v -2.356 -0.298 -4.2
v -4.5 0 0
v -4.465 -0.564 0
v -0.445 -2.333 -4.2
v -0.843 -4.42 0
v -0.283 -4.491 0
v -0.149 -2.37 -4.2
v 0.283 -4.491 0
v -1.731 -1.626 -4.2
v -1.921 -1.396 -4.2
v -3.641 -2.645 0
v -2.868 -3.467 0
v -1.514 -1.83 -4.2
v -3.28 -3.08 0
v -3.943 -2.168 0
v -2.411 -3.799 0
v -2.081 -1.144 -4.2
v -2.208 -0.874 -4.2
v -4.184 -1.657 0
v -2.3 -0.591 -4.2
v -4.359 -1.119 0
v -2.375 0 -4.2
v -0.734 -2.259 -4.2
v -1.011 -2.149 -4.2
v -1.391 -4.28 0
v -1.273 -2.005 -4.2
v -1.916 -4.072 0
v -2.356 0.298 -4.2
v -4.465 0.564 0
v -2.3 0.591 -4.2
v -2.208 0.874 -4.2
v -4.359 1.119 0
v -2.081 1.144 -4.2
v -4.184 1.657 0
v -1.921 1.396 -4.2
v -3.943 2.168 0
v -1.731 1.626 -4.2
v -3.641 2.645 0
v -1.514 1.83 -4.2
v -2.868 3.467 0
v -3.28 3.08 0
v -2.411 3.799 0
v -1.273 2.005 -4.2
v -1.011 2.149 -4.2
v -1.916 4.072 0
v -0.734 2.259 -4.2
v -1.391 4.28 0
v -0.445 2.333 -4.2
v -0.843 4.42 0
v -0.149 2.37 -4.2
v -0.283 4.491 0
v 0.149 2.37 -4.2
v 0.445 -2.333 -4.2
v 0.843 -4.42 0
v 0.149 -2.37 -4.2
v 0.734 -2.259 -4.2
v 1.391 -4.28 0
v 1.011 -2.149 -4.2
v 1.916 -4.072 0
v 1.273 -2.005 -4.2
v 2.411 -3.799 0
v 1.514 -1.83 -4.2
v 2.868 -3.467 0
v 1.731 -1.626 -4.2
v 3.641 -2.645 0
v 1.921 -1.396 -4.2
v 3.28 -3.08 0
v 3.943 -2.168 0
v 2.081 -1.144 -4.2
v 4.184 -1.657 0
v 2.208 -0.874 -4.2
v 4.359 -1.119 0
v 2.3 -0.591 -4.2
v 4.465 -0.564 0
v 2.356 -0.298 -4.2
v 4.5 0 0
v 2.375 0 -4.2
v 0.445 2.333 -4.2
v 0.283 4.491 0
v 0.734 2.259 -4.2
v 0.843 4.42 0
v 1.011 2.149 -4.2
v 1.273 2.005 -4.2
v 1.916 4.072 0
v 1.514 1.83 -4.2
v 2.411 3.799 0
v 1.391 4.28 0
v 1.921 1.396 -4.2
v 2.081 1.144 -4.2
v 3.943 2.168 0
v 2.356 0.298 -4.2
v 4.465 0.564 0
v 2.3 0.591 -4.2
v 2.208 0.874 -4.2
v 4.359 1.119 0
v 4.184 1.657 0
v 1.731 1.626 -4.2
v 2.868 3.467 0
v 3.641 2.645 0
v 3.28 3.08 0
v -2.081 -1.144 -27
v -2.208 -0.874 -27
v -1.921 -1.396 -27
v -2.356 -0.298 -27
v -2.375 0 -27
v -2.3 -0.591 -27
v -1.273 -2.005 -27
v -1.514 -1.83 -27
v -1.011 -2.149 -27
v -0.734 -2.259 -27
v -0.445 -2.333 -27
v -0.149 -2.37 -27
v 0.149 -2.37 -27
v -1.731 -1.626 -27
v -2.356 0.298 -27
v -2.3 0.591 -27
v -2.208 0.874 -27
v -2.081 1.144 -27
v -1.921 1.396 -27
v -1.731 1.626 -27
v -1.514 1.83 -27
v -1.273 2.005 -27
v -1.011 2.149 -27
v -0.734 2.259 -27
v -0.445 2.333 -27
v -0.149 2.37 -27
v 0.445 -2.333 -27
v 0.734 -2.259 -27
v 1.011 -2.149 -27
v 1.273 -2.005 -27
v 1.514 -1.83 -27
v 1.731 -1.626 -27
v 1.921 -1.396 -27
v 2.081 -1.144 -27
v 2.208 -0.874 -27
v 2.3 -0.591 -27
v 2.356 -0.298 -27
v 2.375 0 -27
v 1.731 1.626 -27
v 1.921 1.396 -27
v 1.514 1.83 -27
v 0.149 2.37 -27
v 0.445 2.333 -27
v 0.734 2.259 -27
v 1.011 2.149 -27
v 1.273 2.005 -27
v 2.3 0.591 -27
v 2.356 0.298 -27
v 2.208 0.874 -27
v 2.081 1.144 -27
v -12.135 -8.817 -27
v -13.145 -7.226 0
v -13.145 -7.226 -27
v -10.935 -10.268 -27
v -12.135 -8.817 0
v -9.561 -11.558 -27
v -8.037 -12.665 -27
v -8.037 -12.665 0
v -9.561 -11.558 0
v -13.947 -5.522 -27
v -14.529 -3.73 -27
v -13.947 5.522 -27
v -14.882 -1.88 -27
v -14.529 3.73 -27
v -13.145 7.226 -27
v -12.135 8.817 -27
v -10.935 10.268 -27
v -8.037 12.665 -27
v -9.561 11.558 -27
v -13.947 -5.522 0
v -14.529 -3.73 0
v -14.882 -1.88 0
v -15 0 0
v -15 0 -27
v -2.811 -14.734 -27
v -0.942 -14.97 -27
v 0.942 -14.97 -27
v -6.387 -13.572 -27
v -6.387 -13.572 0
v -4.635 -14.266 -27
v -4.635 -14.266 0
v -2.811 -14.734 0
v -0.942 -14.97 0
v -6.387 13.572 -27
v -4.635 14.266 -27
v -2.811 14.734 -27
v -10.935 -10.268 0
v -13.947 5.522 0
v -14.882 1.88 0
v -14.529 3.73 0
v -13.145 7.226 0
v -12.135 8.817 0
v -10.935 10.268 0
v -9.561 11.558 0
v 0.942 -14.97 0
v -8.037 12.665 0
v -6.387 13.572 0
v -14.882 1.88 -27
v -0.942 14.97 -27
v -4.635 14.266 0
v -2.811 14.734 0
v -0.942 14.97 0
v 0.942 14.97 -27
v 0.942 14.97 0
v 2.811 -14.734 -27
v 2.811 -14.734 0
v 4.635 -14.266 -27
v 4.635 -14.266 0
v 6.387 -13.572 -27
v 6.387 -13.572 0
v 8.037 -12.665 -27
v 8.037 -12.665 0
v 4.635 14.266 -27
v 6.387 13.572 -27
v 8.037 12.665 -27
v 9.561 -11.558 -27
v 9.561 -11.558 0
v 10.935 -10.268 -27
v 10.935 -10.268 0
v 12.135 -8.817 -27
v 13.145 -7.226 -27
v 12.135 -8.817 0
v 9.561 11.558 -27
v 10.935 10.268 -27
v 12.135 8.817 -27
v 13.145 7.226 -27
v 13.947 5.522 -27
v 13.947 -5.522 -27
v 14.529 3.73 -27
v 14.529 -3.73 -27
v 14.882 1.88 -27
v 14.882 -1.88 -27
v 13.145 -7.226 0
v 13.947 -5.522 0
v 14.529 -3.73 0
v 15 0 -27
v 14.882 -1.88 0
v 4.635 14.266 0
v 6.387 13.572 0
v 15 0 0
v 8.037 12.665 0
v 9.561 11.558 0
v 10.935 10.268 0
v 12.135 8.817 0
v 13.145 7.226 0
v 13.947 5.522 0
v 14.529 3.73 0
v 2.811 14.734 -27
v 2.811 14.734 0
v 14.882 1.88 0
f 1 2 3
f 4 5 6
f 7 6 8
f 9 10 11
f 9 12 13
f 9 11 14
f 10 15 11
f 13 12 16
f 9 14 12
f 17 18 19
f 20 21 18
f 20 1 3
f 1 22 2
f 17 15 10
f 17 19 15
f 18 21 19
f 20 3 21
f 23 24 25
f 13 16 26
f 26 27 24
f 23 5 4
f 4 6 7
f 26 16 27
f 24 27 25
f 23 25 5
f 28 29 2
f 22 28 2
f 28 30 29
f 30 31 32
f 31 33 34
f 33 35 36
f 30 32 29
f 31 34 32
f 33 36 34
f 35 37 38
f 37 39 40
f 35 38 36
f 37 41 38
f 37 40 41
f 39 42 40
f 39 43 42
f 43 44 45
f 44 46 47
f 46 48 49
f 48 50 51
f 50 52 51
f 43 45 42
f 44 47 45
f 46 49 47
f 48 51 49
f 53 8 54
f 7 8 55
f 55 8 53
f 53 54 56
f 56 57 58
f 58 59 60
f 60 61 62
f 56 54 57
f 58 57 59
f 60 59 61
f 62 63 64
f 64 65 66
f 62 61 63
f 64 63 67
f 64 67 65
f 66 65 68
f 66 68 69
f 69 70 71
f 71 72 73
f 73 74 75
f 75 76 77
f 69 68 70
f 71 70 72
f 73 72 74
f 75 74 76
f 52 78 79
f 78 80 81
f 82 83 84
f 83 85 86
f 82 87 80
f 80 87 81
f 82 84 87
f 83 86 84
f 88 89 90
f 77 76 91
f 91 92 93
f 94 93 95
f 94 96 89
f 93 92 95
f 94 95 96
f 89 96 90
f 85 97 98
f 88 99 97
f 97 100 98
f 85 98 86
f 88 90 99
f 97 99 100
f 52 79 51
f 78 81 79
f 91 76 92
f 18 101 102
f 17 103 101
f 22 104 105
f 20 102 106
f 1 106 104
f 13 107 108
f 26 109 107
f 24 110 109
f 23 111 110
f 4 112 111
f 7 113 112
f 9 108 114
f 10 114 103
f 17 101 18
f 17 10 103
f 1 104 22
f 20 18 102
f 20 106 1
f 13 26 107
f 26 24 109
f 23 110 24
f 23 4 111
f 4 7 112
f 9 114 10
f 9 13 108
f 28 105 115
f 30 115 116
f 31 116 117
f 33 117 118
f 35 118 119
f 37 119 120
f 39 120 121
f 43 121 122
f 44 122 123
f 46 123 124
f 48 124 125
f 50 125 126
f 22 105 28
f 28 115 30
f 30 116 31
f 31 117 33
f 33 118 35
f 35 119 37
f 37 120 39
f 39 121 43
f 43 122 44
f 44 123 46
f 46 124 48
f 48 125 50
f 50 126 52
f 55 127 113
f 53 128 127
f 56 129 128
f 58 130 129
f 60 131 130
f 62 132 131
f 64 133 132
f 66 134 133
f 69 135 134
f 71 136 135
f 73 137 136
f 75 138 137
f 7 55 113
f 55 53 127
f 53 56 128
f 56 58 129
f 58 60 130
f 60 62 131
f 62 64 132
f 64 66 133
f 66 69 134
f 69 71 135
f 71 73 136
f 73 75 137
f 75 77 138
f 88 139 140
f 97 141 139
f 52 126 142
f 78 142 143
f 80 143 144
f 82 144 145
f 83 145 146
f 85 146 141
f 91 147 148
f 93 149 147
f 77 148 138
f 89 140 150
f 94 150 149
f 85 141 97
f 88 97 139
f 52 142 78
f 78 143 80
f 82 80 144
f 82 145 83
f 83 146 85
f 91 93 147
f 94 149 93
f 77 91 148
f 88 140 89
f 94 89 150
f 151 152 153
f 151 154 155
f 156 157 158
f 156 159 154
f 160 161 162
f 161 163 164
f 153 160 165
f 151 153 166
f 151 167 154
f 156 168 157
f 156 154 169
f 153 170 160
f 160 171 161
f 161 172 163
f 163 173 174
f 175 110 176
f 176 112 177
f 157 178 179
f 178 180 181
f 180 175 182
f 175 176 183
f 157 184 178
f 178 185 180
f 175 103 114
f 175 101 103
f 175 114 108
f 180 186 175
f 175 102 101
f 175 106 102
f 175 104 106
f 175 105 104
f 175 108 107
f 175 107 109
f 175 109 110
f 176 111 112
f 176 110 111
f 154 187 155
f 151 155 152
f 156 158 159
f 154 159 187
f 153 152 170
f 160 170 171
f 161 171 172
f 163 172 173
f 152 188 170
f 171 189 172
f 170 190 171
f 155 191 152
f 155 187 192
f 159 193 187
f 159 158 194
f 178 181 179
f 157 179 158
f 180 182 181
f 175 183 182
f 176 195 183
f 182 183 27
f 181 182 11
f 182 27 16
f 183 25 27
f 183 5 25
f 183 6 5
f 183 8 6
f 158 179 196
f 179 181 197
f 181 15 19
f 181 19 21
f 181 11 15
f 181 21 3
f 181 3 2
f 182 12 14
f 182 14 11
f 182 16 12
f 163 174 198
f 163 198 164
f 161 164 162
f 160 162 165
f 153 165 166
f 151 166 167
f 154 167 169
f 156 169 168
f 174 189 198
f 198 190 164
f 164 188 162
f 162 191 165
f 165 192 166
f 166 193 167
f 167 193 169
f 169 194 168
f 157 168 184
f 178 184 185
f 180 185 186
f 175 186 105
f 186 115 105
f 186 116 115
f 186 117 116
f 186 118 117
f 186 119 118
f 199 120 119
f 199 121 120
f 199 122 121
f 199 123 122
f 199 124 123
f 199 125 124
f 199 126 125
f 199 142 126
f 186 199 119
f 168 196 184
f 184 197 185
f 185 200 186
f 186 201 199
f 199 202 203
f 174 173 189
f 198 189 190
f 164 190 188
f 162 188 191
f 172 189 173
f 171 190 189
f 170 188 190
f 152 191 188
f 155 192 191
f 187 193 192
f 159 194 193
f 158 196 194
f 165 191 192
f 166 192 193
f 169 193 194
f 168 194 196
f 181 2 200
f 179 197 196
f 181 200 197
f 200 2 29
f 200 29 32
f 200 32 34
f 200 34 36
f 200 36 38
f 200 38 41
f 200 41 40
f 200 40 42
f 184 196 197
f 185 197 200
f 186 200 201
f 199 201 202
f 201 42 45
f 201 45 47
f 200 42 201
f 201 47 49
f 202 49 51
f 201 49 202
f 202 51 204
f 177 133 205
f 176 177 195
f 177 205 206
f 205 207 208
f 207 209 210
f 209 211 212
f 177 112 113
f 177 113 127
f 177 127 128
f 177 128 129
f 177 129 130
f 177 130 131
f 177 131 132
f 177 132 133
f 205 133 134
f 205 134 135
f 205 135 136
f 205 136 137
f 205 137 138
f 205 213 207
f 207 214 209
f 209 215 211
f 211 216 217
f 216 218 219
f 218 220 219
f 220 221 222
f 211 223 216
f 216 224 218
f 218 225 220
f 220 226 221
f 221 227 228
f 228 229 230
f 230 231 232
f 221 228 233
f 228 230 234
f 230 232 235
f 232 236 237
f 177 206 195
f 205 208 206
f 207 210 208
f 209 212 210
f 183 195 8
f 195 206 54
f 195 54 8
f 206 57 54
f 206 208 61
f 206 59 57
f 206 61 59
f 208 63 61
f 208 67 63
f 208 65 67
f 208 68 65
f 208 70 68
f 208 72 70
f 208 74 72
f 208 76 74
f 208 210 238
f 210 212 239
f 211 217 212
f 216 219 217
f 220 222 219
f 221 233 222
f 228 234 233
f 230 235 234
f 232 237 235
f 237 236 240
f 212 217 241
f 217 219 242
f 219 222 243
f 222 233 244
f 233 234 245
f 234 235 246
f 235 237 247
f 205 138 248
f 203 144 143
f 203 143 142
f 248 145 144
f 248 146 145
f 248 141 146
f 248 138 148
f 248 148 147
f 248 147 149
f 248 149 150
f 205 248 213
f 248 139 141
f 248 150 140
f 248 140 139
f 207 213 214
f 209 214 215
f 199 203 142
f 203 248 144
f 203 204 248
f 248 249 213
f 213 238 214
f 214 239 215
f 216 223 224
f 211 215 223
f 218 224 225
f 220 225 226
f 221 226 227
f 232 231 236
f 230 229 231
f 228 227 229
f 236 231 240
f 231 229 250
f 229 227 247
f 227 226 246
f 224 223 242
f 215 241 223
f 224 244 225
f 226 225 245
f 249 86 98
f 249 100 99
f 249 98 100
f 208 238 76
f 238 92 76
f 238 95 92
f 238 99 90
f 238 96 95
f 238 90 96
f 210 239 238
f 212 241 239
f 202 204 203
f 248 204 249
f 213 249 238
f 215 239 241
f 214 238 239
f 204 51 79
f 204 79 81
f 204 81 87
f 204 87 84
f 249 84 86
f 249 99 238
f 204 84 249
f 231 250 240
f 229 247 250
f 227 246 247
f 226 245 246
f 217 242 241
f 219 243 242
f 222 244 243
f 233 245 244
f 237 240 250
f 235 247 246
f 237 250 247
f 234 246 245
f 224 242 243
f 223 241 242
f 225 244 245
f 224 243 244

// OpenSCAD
$fn = 50;


difference() {
	union() {
		translate(v = [0, 0, -27.0000000000]) {
			cylinder(h = 27, r = 15.0000000000);
		}
	}
	union() {
		translate(v = [0, 0, 0]) {
			rotate(a = [0, 0, 0]) {
				difference() {
					union() {
						translate(v = [0, 0, -30.0000000000]) {
							cylinder(h = 30, r = 2.2500000000);
						}
						translate(v = [0, 0, -4.2000000000]) {
							cylinder(h = 4.2000000000, r1 = 2.3750000000, r2 = 4.5000000000);
						}
						translate(v = [0, 0, -30.0000000000]) {
							cylinder(h = 30, r = 2.3750000000);
						}
						translate(v = [0, 0, -30.0000000000]) {
							cylinder(h = 30, r = 2.2500000000);
						}
					}
					union();
				}
			}
		}
	}
}
